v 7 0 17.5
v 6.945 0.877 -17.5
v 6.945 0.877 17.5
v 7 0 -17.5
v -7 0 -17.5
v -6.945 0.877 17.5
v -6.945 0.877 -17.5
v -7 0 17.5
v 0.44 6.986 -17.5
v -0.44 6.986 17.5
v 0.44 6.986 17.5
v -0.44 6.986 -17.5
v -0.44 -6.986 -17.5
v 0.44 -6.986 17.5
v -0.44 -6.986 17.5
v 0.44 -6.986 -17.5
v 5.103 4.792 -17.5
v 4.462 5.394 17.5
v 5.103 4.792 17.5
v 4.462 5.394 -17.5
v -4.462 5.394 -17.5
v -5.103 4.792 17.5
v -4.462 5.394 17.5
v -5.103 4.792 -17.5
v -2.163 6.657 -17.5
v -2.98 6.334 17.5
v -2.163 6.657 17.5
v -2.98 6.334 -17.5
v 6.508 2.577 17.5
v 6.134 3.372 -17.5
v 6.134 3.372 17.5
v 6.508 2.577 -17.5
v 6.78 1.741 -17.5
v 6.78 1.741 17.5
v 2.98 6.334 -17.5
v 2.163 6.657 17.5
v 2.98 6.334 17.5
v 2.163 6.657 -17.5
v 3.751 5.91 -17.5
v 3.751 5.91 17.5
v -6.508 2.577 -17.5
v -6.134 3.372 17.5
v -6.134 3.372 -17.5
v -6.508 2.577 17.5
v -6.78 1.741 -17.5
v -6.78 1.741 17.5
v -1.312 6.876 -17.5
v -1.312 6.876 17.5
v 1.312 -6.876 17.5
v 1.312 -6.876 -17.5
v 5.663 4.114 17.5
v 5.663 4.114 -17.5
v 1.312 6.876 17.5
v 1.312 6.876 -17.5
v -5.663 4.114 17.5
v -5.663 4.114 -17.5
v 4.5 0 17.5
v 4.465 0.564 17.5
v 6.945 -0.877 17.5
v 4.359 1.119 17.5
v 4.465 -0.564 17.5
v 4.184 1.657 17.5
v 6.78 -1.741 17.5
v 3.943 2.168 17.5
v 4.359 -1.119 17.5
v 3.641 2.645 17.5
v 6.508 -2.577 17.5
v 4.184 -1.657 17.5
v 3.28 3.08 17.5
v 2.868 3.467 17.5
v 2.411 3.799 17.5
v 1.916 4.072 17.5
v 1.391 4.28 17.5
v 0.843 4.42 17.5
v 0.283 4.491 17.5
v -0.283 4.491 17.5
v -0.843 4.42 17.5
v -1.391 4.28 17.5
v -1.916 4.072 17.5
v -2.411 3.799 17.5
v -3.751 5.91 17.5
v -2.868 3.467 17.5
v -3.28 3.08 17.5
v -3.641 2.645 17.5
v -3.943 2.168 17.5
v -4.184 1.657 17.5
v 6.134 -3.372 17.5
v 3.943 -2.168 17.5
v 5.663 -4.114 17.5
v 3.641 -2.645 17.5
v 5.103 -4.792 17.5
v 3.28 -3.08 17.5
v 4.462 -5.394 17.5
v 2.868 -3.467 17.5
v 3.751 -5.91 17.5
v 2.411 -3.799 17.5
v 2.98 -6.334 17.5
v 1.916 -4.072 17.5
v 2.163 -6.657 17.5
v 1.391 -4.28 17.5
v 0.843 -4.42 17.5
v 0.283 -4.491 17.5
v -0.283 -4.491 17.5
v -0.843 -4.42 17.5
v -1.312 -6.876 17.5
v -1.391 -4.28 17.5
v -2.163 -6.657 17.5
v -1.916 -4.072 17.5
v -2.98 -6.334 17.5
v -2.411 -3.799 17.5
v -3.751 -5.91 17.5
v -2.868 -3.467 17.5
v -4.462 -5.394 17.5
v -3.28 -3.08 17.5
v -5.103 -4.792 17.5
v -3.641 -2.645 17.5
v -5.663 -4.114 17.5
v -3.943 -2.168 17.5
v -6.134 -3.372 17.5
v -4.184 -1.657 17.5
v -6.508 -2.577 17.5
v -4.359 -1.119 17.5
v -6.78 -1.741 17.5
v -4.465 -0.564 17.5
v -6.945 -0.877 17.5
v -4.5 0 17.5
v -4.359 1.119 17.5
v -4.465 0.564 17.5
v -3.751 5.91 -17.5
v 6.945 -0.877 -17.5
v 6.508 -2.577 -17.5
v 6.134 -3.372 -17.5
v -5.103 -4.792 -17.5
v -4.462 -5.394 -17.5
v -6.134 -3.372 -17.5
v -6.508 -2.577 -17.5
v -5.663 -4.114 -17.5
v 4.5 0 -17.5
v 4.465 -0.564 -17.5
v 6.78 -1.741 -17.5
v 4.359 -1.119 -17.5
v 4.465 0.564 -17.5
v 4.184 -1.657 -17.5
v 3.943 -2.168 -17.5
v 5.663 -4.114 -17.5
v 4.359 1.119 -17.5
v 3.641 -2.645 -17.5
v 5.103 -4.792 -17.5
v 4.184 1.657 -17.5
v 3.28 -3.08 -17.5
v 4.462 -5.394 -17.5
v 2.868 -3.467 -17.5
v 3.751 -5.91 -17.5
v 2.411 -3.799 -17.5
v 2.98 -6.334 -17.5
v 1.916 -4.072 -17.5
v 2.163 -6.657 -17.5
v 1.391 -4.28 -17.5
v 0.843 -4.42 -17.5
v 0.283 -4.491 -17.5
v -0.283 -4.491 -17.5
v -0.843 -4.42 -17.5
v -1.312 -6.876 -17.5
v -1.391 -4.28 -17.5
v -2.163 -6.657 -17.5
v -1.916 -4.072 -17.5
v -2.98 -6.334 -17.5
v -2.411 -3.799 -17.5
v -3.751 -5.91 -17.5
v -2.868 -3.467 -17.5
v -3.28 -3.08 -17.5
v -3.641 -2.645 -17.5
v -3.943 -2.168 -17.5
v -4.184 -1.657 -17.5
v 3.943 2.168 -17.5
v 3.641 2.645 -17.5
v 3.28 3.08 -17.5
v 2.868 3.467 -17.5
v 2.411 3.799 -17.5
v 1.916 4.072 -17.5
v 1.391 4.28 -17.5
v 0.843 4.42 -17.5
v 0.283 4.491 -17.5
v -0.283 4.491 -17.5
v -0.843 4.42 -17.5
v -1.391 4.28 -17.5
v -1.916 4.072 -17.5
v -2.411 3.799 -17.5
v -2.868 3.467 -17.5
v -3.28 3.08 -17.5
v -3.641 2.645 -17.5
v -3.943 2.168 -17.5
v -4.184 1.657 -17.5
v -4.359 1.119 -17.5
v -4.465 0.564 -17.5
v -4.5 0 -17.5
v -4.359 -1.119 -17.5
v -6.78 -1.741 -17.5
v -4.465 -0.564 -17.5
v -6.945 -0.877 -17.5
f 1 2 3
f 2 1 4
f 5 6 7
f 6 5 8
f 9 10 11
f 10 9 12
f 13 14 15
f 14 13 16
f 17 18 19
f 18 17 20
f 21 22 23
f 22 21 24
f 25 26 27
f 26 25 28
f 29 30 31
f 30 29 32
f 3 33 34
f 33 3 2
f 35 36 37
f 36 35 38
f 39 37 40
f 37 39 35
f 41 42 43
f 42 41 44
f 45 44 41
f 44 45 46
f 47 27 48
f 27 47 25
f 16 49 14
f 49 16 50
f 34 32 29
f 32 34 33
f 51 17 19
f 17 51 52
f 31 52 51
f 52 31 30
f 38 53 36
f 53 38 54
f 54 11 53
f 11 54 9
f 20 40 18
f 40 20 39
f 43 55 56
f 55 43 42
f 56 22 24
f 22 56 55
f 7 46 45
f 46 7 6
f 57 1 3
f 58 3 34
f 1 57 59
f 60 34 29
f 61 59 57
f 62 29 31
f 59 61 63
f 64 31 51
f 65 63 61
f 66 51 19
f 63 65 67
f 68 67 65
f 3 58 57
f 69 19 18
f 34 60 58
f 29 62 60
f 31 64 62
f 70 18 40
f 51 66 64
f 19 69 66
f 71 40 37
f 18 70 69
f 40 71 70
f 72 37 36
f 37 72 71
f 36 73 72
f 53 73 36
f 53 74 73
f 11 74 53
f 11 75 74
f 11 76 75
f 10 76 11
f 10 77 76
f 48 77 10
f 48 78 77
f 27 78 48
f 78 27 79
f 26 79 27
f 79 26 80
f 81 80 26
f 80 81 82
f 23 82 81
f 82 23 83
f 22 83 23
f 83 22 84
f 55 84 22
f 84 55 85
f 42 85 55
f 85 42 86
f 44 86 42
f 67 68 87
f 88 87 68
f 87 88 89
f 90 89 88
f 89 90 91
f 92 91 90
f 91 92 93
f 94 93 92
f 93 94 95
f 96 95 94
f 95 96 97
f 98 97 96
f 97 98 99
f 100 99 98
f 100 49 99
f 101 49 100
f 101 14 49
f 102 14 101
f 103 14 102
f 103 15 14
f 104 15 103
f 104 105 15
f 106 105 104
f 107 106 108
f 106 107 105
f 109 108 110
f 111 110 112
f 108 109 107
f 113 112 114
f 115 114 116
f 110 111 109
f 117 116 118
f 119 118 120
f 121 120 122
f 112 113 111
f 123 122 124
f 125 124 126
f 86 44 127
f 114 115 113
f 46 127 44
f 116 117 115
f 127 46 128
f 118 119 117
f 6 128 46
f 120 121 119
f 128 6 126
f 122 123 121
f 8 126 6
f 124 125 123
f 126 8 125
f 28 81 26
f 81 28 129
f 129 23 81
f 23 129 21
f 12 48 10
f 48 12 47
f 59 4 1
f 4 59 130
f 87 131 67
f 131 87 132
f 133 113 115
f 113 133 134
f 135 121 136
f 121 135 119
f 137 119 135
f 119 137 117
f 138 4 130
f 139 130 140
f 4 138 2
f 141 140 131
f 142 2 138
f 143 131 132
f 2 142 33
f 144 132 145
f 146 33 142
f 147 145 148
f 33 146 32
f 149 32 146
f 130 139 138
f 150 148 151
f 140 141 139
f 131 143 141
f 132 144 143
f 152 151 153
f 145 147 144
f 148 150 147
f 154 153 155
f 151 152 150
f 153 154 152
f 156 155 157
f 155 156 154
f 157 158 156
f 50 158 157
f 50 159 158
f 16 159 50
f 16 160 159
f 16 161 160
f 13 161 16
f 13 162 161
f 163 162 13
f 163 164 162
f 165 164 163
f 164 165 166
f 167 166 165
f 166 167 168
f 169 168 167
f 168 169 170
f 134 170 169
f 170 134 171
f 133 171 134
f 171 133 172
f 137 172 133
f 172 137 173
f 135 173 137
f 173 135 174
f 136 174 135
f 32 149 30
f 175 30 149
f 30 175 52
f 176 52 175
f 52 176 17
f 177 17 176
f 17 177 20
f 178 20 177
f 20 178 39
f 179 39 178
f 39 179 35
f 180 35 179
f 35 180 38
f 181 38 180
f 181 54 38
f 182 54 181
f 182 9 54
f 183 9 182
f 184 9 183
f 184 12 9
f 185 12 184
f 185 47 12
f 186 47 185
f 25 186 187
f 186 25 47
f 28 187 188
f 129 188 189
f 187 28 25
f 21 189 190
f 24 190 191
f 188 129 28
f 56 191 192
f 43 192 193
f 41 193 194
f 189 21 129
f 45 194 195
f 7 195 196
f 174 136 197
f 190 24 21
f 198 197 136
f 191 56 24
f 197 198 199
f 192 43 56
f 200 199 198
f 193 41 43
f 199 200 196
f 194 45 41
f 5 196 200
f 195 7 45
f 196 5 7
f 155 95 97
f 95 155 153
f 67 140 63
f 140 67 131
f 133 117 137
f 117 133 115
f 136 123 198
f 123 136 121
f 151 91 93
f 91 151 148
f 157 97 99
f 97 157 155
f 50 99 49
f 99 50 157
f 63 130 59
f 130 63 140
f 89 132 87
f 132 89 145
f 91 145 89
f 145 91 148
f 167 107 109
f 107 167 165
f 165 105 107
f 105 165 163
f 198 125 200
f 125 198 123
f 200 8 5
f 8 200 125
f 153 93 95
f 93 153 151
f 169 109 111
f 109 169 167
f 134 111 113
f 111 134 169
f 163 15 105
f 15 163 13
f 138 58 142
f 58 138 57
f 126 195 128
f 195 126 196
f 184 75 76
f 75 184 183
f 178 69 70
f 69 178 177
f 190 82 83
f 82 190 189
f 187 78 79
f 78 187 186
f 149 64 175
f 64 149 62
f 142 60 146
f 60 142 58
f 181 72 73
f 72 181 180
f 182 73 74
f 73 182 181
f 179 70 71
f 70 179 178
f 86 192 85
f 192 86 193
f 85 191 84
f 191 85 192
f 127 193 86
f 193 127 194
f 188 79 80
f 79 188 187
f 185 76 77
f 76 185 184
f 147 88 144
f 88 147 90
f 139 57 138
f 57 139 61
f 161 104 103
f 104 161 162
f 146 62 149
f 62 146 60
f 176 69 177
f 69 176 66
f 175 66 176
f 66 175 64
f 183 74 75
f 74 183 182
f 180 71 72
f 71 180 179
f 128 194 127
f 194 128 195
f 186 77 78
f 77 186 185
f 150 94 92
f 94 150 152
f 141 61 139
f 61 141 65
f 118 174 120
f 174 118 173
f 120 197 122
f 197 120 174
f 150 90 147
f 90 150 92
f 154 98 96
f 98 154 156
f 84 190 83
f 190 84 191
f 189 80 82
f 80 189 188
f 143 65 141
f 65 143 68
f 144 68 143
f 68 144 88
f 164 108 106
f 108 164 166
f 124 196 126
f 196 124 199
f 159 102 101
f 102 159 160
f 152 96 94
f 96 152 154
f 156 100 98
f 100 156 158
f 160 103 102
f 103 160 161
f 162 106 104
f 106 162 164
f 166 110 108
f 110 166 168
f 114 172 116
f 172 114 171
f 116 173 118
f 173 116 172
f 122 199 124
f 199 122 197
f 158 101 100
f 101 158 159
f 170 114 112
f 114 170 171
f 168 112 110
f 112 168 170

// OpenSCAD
$fn = 50;


difference() {
	union() {
		translate(v = [0, 0, -17.5000000000]) {
			cylinder(h = 35, r = 7.0000000000);
		}
	}
	union() {
		translate(v = [0, 0, -100.0000000000]) {
			cylinder(h = 200, r = 4.5000000000);
		}
	}
}
